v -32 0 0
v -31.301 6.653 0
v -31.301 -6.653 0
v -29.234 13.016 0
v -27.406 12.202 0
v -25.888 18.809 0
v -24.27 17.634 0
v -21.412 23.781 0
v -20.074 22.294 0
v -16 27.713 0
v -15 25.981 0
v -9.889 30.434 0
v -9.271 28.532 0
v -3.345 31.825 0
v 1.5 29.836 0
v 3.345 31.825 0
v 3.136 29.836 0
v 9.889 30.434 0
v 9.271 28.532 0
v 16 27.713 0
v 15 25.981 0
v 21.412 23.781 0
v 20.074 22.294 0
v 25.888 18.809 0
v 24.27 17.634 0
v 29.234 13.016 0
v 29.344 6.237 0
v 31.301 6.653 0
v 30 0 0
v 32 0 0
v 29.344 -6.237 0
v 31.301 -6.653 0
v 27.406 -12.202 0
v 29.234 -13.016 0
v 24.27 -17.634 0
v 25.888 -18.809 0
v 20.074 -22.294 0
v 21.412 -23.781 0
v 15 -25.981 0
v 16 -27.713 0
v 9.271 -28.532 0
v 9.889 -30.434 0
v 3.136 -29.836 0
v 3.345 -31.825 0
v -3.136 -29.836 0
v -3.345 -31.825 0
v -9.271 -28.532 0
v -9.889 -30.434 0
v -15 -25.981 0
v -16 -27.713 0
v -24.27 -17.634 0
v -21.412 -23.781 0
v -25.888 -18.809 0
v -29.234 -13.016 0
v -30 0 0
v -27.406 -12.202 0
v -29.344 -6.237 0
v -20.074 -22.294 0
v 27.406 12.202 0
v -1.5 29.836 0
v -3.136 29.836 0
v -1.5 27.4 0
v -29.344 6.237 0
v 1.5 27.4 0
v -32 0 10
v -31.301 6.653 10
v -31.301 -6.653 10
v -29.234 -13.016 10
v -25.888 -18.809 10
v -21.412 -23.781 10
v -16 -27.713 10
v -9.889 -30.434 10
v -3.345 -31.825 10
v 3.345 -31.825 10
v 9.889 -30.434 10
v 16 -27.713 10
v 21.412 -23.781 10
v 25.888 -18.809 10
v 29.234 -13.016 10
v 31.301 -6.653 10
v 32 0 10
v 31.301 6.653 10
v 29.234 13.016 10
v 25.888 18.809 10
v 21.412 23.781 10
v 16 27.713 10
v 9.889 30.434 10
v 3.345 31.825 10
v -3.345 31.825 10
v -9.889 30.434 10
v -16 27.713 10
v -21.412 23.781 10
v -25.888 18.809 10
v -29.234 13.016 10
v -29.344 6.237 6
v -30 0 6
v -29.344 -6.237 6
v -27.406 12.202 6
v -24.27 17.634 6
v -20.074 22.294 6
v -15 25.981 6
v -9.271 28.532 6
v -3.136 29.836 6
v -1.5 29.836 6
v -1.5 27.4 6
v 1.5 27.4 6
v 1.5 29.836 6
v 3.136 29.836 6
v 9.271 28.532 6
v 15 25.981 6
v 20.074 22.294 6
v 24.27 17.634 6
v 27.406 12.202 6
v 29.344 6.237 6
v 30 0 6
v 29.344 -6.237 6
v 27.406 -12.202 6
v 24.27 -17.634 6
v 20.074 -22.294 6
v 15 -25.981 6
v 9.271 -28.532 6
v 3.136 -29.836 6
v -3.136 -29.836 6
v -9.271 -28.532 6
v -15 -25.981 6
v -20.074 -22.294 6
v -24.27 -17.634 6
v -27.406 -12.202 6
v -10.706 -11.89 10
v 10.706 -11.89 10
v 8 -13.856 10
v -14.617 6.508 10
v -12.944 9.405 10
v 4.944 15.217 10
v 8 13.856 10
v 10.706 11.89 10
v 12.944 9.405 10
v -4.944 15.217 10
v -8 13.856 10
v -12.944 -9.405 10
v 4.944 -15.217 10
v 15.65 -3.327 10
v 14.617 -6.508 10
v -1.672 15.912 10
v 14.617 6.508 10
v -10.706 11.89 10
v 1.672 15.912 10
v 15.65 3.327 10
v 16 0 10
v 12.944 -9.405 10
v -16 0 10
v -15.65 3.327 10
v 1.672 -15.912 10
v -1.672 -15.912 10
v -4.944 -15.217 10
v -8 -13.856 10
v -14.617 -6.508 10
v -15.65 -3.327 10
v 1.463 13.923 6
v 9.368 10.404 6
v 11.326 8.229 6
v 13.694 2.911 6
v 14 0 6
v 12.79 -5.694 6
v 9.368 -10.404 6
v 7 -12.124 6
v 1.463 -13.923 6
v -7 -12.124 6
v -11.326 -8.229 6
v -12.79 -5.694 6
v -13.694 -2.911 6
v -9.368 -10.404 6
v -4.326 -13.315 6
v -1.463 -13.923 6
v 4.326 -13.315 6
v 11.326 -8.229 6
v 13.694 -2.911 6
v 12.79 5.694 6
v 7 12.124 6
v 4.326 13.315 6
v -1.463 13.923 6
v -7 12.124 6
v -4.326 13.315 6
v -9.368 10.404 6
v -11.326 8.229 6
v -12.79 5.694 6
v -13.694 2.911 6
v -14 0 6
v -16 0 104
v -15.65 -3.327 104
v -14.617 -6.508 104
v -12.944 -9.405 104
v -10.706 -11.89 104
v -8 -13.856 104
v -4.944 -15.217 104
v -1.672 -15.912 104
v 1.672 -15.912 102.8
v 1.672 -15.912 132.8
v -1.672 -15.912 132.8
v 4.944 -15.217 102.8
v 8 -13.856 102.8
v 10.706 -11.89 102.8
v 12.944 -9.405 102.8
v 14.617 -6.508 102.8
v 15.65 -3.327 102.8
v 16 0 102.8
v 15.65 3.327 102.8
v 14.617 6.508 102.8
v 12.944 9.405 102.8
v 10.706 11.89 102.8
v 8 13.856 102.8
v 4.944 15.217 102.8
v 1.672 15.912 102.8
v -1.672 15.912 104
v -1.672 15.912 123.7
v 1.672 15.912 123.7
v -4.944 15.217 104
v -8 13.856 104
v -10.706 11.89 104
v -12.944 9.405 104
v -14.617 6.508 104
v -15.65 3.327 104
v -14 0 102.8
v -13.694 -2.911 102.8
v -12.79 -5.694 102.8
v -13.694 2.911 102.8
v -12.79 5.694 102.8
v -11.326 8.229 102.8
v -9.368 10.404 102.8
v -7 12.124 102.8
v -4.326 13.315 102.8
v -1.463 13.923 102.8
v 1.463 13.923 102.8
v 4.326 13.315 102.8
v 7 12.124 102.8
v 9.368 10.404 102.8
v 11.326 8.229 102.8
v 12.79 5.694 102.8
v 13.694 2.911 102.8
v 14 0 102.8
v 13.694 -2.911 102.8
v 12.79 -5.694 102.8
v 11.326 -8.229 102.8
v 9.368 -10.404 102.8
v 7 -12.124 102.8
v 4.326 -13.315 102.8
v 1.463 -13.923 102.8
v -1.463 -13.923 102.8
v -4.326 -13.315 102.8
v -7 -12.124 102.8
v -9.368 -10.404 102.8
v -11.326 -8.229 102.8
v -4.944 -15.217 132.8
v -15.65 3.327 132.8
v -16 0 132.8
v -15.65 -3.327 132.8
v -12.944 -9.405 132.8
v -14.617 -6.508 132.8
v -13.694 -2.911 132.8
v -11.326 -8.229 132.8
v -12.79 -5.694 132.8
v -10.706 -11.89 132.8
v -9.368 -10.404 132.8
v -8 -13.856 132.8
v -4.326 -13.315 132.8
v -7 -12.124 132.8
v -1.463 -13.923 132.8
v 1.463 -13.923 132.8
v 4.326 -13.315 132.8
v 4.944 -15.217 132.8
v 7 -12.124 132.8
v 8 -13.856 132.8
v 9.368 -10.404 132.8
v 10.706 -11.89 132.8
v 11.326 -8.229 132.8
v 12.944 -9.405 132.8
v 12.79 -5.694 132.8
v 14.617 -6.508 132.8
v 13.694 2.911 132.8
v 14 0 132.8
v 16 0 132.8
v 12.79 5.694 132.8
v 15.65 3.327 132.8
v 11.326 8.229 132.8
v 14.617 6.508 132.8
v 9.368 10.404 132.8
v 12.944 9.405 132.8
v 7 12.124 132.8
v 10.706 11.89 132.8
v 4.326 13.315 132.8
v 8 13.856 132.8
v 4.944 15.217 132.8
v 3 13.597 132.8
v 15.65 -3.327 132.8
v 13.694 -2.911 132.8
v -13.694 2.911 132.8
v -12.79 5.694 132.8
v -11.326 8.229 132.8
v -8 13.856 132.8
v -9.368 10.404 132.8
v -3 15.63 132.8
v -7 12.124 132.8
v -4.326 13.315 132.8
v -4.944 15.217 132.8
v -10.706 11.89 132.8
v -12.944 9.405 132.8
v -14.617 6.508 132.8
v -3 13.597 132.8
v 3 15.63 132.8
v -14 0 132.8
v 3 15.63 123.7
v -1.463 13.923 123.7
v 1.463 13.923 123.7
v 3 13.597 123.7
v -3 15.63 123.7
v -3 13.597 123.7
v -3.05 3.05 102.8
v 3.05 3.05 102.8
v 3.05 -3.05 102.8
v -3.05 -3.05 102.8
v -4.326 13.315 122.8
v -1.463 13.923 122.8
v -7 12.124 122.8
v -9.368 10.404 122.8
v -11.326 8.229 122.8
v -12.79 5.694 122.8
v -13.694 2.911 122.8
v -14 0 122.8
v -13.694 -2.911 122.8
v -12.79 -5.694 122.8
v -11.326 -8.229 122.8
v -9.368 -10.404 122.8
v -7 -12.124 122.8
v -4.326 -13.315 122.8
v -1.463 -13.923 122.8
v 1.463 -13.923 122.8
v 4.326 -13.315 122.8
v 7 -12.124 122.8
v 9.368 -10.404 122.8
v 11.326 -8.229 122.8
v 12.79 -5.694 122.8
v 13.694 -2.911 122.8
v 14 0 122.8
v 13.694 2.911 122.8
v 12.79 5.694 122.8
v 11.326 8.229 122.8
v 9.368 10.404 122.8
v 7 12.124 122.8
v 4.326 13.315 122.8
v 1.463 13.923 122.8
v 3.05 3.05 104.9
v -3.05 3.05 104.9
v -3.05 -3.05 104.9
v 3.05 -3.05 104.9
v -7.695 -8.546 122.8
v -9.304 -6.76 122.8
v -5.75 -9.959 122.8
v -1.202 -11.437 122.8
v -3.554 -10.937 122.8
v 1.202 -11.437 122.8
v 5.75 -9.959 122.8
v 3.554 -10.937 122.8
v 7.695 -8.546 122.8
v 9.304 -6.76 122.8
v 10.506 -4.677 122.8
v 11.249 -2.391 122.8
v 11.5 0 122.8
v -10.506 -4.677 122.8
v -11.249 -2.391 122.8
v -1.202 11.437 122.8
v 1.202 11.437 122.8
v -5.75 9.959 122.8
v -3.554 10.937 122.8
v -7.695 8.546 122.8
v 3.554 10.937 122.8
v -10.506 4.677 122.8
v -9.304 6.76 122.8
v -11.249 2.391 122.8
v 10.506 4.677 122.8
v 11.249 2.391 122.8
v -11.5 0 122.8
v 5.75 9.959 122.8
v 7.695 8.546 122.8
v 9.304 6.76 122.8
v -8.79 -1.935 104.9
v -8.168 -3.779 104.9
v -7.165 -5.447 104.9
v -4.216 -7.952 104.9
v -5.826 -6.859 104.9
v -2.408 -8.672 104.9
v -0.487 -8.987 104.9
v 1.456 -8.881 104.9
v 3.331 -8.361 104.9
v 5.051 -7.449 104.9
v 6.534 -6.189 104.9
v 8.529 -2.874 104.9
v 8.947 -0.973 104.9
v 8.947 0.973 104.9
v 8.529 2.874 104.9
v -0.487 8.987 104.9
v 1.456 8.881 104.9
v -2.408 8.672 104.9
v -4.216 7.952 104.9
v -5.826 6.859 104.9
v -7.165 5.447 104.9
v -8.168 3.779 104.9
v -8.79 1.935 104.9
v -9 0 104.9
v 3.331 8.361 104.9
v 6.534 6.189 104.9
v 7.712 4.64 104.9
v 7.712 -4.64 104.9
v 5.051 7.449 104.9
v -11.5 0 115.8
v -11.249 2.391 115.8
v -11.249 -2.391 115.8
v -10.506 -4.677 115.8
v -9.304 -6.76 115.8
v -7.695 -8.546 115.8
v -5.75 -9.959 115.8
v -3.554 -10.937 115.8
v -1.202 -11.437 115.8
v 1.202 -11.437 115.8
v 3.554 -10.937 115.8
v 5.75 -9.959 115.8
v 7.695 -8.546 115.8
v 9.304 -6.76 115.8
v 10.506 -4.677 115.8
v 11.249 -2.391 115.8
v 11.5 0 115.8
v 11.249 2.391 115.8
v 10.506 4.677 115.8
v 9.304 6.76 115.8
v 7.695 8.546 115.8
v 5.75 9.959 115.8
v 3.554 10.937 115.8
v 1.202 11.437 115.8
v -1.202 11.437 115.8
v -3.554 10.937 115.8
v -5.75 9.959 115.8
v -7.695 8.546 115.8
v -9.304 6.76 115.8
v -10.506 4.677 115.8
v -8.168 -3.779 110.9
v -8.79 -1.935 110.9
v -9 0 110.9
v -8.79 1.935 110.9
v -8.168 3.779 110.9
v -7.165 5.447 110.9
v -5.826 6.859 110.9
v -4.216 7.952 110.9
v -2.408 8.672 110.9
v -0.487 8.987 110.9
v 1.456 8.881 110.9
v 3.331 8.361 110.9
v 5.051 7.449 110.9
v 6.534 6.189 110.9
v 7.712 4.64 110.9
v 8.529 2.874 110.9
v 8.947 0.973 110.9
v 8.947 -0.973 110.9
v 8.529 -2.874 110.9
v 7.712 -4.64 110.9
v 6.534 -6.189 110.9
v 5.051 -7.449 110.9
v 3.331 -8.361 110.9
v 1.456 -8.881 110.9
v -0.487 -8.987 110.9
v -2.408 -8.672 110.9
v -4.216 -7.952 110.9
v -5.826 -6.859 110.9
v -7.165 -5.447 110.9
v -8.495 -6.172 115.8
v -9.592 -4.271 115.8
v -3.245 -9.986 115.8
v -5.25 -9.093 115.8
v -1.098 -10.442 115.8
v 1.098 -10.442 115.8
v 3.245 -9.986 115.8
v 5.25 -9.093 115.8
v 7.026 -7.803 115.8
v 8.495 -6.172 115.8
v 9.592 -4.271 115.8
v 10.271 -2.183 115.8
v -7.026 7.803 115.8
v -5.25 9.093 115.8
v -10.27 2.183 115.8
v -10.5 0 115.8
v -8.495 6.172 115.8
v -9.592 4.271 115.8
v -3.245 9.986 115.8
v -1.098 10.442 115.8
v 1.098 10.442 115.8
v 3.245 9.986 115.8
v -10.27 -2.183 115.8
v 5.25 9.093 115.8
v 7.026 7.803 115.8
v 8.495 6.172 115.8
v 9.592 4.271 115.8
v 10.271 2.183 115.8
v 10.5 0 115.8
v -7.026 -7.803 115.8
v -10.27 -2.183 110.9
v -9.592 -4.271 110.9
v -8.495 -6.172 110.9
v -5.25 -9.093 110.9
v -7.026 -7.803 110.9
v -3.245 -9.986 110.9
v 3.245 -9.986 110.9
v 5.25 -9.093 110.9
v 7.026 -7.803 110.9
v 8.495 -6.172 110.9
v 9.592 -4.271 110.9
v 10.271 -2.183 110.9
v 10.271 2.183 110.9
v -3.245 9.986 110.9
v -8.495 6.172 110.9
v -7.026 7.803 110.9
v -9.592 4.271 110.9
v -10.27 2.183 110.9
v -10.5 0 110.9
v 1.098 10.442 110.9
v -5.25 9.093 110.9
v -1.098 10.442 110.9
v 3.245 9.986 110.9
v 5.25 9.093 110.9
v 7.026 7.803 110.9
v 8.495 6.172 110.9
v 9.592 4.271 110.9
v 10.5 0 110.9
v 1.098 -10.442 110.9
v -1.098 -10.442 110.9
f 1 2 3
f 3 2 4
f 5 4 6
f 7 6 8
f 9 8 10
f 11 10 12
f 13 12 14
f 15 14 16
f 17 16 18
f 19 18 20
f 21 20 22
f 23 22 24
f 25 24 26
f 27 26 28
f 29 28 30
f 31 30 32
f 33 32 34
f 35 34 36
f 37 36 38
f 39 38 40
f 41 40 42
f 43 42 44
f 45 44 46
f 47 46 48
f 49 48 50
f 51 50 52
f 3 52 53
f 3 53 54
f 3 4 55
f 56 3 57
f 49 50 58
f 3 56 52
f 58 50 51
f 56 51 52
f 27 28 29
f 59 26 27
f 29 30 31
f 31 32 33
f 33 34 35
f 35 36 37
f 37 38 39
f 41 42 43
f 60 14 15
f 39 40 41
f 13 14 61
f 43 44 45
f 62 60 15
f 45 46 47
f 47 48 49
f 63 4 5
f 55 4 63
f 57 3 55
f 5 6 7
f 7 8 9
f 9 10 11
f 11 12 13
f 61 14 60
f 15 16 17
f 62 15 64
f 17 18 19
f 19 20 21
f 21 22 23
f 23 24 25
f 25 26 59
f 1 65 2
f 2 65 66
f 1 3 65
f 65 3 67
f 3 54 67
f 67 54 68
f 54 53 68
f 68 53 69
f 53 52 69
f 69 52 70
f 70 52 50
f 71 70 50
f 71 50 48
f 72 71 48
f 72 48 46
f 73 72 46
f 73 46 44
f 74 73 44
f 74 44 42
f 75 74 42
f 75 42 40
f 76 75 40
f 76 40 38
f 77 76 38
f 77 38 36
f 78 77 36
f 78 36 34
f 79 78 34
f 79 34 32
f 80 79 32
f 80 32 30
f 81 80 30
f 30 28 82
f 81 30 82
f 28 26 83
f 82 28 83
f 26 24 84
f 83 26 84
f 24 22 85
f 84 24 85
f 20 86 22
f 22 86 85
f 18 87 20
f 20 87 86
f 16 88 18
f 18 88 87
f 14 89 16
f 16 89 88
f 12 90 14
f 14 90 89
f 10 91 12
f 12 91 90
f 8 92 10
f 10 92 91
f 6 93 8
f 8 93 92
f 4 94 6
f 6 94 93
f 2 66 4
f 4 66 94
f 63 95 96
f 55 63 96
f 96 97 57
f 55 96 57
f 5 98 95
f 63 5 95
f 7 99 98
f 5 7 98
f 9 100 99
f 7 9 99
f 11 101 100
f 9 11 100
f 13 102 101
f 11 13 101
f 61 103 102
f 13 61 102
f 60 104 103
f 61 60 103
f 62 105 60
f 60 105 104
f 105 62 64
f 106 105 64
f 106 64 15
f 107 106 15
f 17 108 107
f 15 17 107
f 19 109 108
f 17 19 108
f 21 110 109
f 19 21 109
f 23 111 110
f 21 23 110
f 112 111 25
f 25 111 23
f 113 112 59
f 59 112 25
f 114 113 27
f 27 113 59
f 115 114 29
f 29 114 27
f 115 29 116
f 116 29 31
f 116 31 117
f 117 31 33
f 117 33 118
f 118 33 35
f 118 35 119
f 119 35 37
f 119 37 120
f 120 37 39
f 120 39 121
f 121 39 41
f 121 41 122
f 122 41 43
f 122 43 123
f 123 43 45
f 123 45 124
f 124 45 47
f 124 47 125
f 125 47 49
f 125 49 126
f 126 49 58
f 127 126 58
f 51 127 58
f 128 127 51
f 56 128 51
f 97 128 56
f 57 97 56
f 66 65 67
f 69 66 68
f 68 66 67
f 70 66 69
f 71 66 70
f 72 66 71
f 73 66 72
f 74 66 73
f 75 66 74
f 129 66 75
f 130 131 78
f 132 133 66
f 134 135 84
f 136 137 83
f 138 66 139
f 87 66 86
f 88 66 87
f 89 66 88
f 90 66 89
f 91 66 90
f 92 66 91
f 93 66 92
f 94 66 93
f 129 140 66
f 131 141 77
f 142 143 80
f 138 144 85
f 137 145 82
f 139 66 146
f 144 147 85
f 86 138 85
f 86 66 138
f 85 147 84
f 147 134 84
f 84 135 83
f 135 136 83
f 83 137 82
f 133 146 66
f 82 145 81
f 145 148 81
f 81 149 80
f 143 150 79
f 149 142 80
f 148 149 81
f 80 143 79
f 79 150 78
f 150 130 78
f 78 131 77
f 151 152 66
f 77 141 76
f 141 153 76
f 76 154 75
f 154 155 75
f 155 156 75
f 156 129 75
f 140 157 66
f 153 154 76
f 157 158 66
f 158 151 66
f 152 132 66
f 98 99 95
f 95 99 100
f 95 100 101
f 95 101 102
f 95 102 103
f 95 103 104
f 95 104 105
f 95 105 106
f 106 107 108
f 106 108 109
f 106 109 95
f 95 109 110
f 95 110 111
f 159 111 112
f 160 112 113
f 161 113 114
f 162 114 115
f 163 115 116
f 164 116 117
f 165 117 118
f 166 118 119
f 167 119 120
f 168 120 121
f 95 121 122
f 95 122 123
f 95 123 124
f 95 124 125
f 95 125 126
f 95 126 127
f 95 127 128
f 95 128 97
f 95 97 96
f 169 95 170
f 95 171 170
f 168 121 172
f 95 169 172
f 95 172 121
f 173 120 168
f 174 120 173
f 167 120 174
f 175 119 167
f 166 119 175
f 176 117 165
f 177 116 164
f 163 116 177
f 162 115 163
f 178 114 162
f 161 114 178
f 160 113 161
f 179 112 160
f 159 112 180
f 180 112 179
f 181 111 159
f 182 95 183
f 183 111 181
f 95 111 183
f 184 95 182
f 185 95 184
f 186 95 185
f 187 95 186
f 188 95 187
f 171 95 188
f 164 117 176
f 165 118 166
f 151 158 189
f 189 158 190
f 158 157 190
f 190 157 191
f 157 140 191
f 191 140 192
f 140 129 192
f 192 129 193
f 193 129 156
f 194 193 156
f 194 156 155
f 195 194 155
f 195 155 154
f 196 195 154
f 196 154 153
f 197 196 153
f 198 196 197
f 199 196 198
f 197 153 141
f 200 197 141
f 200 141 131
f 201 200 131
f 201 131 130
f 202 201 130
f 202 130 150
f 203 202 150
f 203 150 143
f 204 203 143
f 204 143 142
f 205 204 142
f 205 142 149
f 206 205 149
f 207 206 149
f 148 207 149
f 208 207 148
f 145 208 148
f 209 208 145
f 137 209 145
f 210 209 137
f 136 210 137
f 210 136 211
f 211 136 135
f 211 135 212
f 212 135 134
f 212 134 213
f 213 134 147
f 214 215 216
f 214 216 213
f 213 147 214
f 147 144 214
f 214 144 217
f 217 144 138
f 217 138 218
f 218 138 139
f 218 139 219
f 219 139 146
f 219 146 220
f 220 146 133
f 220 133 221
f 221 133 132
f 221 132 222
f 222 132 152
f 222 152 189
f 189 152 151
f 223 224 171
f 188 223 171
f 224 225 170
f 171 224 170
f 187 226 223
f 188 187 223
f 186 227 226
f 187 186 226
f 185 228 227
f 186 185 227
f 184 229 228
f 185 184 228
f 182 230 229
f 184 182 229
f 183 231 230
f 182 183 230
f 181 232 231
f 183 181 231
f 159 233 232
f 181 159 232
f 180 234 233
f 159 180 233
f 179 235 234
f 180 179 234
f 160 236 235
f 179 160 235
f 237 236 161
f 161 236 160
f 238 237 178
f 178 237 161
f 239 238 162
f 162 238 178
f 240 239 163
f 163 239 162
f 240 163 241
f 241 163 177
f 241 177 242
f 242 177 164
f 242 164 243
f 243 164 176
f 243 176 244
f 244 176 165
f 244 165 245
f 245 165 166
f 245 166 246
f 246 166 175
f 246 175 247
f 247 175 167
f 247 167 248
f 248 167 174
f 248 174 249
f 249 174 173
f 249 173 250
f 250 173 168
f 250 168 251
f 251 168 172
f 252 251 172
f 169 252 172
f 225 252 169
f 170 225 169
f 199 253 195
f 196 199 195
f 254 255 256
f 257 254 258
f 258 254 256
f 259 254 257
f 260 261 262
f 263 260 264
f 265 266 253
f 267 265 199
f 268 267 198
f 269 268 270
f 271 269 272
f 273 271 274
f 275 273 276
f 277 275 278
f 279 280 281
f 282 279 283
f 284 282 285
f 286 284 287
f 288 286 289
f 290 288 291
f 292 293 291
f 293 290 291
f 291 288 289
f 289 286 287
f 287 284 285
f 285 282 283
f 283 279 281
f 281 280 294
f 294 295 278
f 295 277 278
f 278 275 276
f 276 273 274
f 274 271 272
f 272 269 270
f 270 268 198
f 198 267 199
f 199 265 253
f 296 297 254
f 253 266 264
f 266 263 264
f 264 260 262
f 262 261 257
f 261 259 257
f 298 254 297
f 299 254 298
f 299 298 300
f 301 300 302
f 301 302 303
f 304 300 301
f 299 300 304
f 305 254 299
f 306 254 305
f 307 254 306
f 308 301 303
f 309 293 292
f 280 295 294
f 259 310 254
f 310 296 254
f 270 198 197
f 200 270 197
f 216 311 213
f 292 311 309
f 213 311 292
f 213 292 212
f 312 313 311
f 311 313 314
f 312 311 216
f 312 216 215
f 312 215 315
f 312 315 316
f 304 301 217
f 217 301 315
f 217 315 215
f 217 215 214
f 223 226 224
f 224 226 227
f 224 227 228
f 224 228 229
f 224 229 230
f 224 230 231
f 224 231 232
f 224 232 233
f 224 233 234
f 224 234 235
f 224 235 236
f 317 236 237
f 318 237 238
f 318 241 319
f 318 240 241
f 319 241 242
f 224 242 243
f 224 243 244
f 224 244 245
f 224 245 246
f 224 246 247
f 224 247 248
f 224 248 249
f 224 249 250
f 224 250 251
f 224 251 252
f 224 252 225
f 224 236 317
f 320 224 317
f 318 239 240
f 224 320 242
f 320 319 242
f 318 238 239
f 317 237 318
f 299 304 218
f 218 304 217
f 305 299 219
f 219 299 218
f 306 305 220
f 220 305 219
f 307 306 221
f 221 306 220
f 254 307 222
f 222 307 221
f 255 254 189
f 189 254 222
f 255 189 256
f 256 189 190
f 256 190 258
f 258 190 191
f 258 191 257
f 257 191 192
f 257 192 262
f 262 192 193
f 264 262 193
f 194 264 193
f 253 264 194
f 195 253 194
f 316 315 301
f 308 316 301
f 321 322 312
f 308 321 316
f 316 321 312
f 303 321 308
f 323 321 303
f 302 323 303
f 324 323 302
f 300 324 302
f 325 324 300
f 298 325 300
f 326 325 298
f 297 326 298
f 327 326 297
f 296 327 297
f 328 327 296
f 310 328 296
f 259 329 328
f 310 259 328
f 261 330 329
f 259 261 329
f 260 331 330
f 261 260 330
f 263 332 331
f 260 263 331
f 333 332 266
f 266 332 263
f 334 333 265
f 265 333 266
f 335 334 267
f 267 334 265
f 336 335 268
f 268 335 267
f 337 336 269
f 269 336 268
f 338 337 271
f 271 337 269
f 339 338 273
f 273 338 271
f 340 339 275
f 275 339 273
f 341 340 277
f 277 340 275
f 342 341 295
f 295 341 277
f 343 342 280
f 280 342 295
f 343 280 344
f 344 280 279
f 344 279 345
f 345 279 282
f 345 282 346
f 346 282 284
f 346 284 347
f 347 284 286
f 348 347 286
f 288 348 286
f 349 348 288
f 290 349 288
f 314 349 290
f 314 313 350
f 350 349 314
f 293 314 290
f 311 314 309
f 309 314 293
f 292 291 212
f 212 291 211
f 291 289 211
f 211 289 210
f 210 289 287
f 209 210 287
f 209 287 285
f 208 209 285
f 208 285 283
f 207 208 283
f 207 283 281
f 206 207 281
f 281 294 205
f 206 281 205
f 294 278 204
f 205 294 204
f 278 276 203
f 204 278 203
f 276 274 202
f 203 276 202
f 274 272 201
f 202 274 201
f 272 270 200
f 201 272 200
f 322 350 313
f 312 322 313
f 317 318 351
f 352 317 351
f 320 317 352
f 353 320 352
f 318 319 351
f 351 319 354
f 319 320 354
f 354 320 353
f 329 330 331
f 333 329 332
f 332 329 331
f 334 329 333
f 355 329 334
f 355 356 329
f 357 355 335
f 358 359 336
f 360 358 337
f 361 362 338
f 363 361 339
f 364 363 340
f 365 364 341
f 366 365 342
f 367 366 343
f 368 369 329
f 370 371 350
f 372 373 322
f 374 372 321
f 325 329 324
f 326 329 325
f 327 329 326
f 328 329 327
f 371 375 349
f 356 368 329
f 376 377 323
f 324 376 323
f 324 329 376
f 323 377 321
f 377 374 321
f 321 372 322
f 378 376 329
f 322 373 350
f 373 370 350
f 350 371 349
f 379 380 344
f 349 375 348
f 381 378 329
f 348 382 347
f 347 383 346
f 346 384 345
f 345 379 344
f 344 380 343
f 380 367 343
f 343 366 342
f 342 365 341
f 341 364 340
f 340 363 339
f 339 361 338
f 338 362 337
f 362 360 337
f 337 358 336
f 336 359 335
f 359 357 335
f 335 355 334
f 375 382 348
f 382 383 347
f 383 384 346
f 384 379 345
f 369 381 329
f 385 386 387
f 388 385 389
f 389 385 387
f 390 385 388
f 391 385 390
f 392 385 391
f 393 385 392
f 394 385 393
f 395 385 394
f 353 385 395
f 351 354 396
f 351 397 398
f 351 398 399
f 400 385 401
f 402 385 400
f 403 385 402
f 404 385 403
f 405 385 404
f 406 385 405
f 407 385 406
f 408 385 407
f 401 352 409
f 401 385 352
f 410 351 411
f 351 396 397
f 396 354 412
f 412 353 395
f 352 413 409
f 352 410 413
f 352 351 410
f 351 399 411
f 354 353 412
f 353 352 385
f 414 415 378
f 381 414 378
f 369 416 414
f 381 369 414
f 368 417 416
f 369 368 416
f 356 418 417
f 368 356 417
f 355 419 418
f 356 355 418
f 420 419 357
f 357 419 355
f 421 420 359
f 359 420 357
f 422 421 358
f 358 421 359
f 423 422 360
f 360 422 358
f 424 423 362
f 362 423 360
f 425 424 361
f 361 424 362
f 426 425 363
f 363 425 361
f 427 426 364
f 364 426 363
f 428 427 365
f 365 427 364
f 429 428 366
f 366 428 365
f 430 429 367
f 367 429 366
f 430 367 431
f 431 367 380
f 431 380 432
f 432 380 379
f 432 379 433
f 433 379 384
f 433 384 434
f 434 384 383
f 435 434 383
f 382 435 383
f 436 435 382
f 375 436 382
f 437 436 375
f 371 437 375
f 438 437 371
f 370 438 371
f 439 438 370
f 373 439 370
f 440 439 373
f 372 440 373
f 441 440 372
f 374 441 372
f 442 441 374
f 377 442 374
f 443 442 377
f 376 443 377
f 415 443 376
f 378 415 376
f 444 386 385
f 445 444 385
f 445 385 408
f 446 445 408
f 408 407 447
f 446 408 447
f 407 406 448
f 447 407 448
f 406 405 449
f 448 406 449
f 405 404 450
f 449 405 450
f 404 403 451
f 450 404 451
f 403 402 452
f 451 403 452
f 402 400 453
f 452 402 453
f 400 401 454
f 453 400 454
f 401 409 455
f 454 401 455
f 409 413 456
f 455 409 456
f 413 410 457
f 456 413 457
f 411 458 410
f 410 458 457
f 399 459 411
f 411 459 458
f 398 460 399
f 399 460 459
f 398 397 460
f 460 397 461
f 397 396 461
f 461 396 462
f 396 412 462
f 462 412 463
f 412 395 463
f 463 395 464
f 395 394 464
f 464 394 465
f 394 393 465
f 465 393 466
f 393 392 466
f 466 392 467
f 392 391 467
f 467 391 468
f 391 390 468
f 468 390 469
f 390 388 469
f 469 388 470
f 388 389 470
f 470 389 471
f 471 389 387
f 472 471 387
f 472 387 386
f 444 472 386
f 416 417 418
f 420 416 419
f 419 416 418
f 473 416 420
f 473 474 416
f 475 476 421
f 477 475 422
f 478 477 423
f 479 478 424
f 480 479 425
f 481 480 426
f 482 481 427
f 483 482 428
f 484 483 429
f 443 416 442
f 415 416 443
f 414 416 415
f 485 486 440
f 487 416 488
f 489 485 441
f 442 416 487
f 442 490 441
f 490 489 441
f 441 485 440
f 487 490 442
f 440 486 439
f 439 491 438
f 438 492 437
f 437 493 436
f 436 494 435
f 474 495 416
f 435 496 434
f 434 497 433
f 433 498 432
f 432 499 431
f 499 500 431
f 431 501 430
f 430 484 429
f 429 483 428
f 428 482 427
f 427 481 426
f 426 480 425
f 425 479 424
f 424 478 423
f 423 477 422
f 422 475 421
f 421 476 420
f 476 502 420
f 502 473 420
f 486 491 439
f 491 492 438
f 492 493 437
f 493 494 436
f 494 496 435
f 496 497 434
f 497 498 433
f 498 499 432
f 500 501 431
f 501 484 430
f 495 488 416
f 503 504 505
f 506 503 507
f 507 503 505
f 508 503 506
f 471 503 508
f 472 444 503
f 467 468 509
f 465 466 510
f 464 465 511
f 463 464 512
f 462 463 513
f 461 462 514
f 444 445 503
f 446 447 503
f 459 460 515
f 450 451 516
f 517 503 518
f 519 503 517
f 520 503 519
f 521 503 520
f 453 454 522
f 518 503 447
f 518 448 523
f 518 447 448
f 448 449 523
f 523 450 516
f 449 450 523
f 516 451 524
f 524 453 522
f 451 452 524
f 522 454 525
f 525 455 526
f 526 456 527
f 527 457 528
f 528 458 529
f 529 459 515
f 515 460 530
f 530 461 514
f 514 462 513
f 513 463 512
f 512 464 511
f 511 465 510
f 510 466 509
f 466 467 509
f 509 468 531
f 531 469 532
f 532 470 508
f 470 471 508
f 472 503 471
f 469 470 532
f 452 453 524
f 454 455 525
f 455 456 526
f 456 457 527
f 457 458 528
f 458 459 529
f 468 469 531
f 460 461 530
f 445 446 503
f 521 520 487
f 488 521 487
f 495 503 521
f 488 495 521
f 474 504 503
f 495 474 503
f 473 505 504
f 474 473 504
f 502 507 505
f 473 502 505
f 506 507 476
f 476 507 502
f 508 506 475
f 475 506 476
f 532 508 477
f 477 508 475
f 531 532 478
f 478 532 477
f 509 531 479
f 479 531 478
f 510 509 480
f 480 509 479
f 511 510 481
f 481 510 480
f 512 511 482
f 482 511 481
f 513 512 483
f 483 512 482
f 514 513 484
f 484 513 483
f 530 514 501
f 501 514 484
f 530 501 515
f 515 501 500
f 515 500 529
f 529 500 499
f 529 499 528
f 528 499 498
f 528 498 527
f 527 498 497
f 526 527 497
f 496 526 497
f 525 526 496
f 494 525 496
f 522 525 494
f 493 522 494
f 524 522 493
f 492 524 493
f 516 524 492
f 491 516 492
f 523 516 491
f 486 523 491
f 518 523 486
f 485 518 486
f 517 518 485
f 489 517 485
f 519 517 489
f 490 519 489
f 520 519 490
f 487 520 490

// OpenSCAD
// file: settingsLenghts.scad
//Ancho de la pared
pared  = 2;
//Radio del centro hueco
radioC = 11;
//Alto de la capa de apertura
aperH = 5.5;
//Ancho de la apertura
aperW = 5+1.1;//Ancho mas holgura
//Ancho del lente macro
macroW = 9.3;
//Profundidad del macro
macroH = 3;
//Profundidad parte de atras y delante
profDelante = 6;
profAtras = 6;
//Ceja entre uniones de cilindros
cejaH = 6;
guiaParedW = 2;
tmpHolg = 1.8;


//Correcc

//
//CÁMARA
camP = 3;//Grueso de la pared del presente modelo
camW = 105;//Ancho de la cámara
camH = 61;//Alto de la cámara
camD = 23.5;//Profundidad de la cámara
camHlg = 6;//Holgura que se deja para los tornillos
camLW = 57/2;//Radio del exterior del lente
torW  = 2;//Radio

//
//Ancho de tubo principal (grande)
mcW = 32;//radio
mcH = 28;

//Dimensiones del difractador
diffW = 51;//Alto y Ancho
diffD=1;//Profundidad del difractador
diffWinW=36;//Ancho de la ventana de difracción
diffWinH=24;//Alto de la ventana de difracción

//
//Adquisición de luz
luzHBig = 10; //donde va el tornillo
luzWBig = 28; //27:diametro donde va el tornillo
luzHBigT = 4; //alto del tornillo
luzWBigT = 6; //6: ancho del tornillo
luzHRosca = 7; //donde va la rosca
luzWRosca = 23; //22:diametro de donde va la rosca



//Cuadro guia para que no se mueva
guiaH = cejaH;
guiaW = 3;



module creaPared(h){
	difference(){
		//Pone el cilindro principal
		cylinder(r=mcW,h);

		//Le quita el contorno exterior
		translate([0,0,-0.1])
		cylinder(r=mcW-pared,h+0.2);
	}
}
module creaGuiaTornilloCentrada(){
	translate([-luzWBigT/2,-luzWBigT/2,0])
	cube([luzWBigT,luzWBigT,luzHBig-1+0.2]);
}
module creaGuiaTornilloCentradaArea(){
	tmpW = luzWBigT + pared;
	tmpH = luzHBig  + pared;
	translate([-tmpW/2,-tmpW/2,0])
	cube([tmpW,tmpW,tmpH]);
}
module creaGuia(h){
	//Pone el circulo soporte
	difference(){
		cylinder(r=mcW,h);
		translate([0,0,-0.1])
		cylinder(r=mcW-pared,h+0.2);
	}
	//Pone la guia1
	translate([0,mcW-pared-(guiaW/2)+0.4,0])
	creaGuiaCentrada(h);
}
module creaGuiaHembra(h){
	//Pone el circulo soporte
	tmpW = mcW-guiaW;	
	creaPared(sopH);
	sopH = 1.35;
	
	//Pone la pared de la guia
	difference(){
		cylinder(r=(mcW-pared),sopH+h);
		translate([0,0,-0.1])
		cylinder(r=(mcW-pared-guiaParedW),sopH+h+0.2);
		//Pone la guia
		translate([-(guiaW/3),tmpW,sopH])
		creaGuiaCentrada(sopH+h+0.2);
		translate([(guiaW/3),tmpW,sopH])
		creaGuiaCentrada(sopH+h+0.2);
	}
}
module creaGuiaCentrada(h){
	translate([-guiaW/2,-guiaW/2,0])
	cube([guiaW,guiaW,h]);
}
// main file
include <settingsLenghts.scad>


/////////////////////////////////////

delgadoH = 93;

macroW = 21;//20:diametro
macroH = 11;

macroBaseW = 18;//17:diametro
macroBaseH = 6;
macroNoBaseH = macroH-macroBaseH;

tmpPared = pared*2;

crearBaseYTubo();

translate([
				0,
				0,
				delgadoH+luzHBig+luzHRosca+
				pared+(pared*2)+cejaH-0.2+macroH
			])
rotate([0,180,0])
crearBaseAdqLuz();

//Creamos cuadro de apertura
//tmpAperW = aperW+pared;
//tmpAperH = cejaH+delgadoH-0.2;
////translate([0,0,cejaH])
//difference(){
//
//	//Pared
//	translate([-tmpAperW/2,-tmpAperW/2,0])
//	cube([tmpAperW,tmpAperW,tmpAperH+cejaH]);
//
//	//Centro
//	translate([-aperW/2,-aperW/2,-0.1])
//	cube([aperW,aperW,tmpAperH+cejaH+0.2]);
//
//}

//Cerramos el hueco del cuadro de apertura
//translate([0, 0, cejaH])
//difference(){
//	cylinder(r=(luzWBig/2)+1,pared);
//	
//	//Apertura
//	translate([-aperW/2,-aperW/2,-0.1])
//	cube([aperW,aperW,tmpAperH+0.2]);
//}




module crearBaseAdqLuz(){
	
	difference(){
		//Toda el área de trabajo
		cylinder(
					r=(luzWBig/2)+pared,
					luzHBig+luzHRosca+pared+macroH
		  	 	 );

		//Cilindro para que entre lente 
		//adquicisión de luz
		translate([0, 0, -0.1])
		cylinder(r=luzWBig/2,luzHBig+0.1);

		//Espacio para que entre la rosca
		translate([0, 0, luzHBig-0.1])
		cylinder(r=luzWRosca/2,luzHRosca+0.1);
		
		//Área para que entre el macro forzado
		translate([0,0,
							luzHBig+
							luzHRosca-0.1])
		cylinder(r=macroW/2,macroNoBaseH);

		//Área de la base del macro
		translate([0,0,
							luzHBig+luzHRosca+
							macroNoBaseH-0.2
				   ])
		cylinder(r=macroBaseW/2,macroBaseH+0.1);


		//Apertura cuadrada
		translate(
						[-aperW/2,
						 -aperW/2,
						 luzHBig+luzHRosca+
						 macroNoBaseH+macroBaseH-0.2
						]
					)
		cube([aperW,aperW,macroH]);

		//Área del tornillo
		translate([0,luzWBig/2,-0.1])
		creaGuiaTornilloCentrada();

	}
}



module crearBaseYTubo(){

	//Pone guia macho
	creaGuia(cejaH);

	//Pone la extensión
	translate([0,0,cejaH])
	creaPared(1);

	//Crea el techo
	translate([0,0,cejaH])
	difference(){
		cylinder(r=mcW,tmpPared);
		translate([0,0,-0.1])
		cylinder(r=(luzWBig/2)+pared,cejaH);
	}

	//Pone pared del cilindro grande	
	translate([0,0,cejaH])
	difference(){
		cylinder(
					r=(luzWBig/2)+pared,
					delgadoH+tmpPared+1
				 );
		translate([0,0,-0.1])
		cylinder(
					r=(luzWBig/2),
					delgadoH+tmpPared+1+0.2
				  );
	}

}
